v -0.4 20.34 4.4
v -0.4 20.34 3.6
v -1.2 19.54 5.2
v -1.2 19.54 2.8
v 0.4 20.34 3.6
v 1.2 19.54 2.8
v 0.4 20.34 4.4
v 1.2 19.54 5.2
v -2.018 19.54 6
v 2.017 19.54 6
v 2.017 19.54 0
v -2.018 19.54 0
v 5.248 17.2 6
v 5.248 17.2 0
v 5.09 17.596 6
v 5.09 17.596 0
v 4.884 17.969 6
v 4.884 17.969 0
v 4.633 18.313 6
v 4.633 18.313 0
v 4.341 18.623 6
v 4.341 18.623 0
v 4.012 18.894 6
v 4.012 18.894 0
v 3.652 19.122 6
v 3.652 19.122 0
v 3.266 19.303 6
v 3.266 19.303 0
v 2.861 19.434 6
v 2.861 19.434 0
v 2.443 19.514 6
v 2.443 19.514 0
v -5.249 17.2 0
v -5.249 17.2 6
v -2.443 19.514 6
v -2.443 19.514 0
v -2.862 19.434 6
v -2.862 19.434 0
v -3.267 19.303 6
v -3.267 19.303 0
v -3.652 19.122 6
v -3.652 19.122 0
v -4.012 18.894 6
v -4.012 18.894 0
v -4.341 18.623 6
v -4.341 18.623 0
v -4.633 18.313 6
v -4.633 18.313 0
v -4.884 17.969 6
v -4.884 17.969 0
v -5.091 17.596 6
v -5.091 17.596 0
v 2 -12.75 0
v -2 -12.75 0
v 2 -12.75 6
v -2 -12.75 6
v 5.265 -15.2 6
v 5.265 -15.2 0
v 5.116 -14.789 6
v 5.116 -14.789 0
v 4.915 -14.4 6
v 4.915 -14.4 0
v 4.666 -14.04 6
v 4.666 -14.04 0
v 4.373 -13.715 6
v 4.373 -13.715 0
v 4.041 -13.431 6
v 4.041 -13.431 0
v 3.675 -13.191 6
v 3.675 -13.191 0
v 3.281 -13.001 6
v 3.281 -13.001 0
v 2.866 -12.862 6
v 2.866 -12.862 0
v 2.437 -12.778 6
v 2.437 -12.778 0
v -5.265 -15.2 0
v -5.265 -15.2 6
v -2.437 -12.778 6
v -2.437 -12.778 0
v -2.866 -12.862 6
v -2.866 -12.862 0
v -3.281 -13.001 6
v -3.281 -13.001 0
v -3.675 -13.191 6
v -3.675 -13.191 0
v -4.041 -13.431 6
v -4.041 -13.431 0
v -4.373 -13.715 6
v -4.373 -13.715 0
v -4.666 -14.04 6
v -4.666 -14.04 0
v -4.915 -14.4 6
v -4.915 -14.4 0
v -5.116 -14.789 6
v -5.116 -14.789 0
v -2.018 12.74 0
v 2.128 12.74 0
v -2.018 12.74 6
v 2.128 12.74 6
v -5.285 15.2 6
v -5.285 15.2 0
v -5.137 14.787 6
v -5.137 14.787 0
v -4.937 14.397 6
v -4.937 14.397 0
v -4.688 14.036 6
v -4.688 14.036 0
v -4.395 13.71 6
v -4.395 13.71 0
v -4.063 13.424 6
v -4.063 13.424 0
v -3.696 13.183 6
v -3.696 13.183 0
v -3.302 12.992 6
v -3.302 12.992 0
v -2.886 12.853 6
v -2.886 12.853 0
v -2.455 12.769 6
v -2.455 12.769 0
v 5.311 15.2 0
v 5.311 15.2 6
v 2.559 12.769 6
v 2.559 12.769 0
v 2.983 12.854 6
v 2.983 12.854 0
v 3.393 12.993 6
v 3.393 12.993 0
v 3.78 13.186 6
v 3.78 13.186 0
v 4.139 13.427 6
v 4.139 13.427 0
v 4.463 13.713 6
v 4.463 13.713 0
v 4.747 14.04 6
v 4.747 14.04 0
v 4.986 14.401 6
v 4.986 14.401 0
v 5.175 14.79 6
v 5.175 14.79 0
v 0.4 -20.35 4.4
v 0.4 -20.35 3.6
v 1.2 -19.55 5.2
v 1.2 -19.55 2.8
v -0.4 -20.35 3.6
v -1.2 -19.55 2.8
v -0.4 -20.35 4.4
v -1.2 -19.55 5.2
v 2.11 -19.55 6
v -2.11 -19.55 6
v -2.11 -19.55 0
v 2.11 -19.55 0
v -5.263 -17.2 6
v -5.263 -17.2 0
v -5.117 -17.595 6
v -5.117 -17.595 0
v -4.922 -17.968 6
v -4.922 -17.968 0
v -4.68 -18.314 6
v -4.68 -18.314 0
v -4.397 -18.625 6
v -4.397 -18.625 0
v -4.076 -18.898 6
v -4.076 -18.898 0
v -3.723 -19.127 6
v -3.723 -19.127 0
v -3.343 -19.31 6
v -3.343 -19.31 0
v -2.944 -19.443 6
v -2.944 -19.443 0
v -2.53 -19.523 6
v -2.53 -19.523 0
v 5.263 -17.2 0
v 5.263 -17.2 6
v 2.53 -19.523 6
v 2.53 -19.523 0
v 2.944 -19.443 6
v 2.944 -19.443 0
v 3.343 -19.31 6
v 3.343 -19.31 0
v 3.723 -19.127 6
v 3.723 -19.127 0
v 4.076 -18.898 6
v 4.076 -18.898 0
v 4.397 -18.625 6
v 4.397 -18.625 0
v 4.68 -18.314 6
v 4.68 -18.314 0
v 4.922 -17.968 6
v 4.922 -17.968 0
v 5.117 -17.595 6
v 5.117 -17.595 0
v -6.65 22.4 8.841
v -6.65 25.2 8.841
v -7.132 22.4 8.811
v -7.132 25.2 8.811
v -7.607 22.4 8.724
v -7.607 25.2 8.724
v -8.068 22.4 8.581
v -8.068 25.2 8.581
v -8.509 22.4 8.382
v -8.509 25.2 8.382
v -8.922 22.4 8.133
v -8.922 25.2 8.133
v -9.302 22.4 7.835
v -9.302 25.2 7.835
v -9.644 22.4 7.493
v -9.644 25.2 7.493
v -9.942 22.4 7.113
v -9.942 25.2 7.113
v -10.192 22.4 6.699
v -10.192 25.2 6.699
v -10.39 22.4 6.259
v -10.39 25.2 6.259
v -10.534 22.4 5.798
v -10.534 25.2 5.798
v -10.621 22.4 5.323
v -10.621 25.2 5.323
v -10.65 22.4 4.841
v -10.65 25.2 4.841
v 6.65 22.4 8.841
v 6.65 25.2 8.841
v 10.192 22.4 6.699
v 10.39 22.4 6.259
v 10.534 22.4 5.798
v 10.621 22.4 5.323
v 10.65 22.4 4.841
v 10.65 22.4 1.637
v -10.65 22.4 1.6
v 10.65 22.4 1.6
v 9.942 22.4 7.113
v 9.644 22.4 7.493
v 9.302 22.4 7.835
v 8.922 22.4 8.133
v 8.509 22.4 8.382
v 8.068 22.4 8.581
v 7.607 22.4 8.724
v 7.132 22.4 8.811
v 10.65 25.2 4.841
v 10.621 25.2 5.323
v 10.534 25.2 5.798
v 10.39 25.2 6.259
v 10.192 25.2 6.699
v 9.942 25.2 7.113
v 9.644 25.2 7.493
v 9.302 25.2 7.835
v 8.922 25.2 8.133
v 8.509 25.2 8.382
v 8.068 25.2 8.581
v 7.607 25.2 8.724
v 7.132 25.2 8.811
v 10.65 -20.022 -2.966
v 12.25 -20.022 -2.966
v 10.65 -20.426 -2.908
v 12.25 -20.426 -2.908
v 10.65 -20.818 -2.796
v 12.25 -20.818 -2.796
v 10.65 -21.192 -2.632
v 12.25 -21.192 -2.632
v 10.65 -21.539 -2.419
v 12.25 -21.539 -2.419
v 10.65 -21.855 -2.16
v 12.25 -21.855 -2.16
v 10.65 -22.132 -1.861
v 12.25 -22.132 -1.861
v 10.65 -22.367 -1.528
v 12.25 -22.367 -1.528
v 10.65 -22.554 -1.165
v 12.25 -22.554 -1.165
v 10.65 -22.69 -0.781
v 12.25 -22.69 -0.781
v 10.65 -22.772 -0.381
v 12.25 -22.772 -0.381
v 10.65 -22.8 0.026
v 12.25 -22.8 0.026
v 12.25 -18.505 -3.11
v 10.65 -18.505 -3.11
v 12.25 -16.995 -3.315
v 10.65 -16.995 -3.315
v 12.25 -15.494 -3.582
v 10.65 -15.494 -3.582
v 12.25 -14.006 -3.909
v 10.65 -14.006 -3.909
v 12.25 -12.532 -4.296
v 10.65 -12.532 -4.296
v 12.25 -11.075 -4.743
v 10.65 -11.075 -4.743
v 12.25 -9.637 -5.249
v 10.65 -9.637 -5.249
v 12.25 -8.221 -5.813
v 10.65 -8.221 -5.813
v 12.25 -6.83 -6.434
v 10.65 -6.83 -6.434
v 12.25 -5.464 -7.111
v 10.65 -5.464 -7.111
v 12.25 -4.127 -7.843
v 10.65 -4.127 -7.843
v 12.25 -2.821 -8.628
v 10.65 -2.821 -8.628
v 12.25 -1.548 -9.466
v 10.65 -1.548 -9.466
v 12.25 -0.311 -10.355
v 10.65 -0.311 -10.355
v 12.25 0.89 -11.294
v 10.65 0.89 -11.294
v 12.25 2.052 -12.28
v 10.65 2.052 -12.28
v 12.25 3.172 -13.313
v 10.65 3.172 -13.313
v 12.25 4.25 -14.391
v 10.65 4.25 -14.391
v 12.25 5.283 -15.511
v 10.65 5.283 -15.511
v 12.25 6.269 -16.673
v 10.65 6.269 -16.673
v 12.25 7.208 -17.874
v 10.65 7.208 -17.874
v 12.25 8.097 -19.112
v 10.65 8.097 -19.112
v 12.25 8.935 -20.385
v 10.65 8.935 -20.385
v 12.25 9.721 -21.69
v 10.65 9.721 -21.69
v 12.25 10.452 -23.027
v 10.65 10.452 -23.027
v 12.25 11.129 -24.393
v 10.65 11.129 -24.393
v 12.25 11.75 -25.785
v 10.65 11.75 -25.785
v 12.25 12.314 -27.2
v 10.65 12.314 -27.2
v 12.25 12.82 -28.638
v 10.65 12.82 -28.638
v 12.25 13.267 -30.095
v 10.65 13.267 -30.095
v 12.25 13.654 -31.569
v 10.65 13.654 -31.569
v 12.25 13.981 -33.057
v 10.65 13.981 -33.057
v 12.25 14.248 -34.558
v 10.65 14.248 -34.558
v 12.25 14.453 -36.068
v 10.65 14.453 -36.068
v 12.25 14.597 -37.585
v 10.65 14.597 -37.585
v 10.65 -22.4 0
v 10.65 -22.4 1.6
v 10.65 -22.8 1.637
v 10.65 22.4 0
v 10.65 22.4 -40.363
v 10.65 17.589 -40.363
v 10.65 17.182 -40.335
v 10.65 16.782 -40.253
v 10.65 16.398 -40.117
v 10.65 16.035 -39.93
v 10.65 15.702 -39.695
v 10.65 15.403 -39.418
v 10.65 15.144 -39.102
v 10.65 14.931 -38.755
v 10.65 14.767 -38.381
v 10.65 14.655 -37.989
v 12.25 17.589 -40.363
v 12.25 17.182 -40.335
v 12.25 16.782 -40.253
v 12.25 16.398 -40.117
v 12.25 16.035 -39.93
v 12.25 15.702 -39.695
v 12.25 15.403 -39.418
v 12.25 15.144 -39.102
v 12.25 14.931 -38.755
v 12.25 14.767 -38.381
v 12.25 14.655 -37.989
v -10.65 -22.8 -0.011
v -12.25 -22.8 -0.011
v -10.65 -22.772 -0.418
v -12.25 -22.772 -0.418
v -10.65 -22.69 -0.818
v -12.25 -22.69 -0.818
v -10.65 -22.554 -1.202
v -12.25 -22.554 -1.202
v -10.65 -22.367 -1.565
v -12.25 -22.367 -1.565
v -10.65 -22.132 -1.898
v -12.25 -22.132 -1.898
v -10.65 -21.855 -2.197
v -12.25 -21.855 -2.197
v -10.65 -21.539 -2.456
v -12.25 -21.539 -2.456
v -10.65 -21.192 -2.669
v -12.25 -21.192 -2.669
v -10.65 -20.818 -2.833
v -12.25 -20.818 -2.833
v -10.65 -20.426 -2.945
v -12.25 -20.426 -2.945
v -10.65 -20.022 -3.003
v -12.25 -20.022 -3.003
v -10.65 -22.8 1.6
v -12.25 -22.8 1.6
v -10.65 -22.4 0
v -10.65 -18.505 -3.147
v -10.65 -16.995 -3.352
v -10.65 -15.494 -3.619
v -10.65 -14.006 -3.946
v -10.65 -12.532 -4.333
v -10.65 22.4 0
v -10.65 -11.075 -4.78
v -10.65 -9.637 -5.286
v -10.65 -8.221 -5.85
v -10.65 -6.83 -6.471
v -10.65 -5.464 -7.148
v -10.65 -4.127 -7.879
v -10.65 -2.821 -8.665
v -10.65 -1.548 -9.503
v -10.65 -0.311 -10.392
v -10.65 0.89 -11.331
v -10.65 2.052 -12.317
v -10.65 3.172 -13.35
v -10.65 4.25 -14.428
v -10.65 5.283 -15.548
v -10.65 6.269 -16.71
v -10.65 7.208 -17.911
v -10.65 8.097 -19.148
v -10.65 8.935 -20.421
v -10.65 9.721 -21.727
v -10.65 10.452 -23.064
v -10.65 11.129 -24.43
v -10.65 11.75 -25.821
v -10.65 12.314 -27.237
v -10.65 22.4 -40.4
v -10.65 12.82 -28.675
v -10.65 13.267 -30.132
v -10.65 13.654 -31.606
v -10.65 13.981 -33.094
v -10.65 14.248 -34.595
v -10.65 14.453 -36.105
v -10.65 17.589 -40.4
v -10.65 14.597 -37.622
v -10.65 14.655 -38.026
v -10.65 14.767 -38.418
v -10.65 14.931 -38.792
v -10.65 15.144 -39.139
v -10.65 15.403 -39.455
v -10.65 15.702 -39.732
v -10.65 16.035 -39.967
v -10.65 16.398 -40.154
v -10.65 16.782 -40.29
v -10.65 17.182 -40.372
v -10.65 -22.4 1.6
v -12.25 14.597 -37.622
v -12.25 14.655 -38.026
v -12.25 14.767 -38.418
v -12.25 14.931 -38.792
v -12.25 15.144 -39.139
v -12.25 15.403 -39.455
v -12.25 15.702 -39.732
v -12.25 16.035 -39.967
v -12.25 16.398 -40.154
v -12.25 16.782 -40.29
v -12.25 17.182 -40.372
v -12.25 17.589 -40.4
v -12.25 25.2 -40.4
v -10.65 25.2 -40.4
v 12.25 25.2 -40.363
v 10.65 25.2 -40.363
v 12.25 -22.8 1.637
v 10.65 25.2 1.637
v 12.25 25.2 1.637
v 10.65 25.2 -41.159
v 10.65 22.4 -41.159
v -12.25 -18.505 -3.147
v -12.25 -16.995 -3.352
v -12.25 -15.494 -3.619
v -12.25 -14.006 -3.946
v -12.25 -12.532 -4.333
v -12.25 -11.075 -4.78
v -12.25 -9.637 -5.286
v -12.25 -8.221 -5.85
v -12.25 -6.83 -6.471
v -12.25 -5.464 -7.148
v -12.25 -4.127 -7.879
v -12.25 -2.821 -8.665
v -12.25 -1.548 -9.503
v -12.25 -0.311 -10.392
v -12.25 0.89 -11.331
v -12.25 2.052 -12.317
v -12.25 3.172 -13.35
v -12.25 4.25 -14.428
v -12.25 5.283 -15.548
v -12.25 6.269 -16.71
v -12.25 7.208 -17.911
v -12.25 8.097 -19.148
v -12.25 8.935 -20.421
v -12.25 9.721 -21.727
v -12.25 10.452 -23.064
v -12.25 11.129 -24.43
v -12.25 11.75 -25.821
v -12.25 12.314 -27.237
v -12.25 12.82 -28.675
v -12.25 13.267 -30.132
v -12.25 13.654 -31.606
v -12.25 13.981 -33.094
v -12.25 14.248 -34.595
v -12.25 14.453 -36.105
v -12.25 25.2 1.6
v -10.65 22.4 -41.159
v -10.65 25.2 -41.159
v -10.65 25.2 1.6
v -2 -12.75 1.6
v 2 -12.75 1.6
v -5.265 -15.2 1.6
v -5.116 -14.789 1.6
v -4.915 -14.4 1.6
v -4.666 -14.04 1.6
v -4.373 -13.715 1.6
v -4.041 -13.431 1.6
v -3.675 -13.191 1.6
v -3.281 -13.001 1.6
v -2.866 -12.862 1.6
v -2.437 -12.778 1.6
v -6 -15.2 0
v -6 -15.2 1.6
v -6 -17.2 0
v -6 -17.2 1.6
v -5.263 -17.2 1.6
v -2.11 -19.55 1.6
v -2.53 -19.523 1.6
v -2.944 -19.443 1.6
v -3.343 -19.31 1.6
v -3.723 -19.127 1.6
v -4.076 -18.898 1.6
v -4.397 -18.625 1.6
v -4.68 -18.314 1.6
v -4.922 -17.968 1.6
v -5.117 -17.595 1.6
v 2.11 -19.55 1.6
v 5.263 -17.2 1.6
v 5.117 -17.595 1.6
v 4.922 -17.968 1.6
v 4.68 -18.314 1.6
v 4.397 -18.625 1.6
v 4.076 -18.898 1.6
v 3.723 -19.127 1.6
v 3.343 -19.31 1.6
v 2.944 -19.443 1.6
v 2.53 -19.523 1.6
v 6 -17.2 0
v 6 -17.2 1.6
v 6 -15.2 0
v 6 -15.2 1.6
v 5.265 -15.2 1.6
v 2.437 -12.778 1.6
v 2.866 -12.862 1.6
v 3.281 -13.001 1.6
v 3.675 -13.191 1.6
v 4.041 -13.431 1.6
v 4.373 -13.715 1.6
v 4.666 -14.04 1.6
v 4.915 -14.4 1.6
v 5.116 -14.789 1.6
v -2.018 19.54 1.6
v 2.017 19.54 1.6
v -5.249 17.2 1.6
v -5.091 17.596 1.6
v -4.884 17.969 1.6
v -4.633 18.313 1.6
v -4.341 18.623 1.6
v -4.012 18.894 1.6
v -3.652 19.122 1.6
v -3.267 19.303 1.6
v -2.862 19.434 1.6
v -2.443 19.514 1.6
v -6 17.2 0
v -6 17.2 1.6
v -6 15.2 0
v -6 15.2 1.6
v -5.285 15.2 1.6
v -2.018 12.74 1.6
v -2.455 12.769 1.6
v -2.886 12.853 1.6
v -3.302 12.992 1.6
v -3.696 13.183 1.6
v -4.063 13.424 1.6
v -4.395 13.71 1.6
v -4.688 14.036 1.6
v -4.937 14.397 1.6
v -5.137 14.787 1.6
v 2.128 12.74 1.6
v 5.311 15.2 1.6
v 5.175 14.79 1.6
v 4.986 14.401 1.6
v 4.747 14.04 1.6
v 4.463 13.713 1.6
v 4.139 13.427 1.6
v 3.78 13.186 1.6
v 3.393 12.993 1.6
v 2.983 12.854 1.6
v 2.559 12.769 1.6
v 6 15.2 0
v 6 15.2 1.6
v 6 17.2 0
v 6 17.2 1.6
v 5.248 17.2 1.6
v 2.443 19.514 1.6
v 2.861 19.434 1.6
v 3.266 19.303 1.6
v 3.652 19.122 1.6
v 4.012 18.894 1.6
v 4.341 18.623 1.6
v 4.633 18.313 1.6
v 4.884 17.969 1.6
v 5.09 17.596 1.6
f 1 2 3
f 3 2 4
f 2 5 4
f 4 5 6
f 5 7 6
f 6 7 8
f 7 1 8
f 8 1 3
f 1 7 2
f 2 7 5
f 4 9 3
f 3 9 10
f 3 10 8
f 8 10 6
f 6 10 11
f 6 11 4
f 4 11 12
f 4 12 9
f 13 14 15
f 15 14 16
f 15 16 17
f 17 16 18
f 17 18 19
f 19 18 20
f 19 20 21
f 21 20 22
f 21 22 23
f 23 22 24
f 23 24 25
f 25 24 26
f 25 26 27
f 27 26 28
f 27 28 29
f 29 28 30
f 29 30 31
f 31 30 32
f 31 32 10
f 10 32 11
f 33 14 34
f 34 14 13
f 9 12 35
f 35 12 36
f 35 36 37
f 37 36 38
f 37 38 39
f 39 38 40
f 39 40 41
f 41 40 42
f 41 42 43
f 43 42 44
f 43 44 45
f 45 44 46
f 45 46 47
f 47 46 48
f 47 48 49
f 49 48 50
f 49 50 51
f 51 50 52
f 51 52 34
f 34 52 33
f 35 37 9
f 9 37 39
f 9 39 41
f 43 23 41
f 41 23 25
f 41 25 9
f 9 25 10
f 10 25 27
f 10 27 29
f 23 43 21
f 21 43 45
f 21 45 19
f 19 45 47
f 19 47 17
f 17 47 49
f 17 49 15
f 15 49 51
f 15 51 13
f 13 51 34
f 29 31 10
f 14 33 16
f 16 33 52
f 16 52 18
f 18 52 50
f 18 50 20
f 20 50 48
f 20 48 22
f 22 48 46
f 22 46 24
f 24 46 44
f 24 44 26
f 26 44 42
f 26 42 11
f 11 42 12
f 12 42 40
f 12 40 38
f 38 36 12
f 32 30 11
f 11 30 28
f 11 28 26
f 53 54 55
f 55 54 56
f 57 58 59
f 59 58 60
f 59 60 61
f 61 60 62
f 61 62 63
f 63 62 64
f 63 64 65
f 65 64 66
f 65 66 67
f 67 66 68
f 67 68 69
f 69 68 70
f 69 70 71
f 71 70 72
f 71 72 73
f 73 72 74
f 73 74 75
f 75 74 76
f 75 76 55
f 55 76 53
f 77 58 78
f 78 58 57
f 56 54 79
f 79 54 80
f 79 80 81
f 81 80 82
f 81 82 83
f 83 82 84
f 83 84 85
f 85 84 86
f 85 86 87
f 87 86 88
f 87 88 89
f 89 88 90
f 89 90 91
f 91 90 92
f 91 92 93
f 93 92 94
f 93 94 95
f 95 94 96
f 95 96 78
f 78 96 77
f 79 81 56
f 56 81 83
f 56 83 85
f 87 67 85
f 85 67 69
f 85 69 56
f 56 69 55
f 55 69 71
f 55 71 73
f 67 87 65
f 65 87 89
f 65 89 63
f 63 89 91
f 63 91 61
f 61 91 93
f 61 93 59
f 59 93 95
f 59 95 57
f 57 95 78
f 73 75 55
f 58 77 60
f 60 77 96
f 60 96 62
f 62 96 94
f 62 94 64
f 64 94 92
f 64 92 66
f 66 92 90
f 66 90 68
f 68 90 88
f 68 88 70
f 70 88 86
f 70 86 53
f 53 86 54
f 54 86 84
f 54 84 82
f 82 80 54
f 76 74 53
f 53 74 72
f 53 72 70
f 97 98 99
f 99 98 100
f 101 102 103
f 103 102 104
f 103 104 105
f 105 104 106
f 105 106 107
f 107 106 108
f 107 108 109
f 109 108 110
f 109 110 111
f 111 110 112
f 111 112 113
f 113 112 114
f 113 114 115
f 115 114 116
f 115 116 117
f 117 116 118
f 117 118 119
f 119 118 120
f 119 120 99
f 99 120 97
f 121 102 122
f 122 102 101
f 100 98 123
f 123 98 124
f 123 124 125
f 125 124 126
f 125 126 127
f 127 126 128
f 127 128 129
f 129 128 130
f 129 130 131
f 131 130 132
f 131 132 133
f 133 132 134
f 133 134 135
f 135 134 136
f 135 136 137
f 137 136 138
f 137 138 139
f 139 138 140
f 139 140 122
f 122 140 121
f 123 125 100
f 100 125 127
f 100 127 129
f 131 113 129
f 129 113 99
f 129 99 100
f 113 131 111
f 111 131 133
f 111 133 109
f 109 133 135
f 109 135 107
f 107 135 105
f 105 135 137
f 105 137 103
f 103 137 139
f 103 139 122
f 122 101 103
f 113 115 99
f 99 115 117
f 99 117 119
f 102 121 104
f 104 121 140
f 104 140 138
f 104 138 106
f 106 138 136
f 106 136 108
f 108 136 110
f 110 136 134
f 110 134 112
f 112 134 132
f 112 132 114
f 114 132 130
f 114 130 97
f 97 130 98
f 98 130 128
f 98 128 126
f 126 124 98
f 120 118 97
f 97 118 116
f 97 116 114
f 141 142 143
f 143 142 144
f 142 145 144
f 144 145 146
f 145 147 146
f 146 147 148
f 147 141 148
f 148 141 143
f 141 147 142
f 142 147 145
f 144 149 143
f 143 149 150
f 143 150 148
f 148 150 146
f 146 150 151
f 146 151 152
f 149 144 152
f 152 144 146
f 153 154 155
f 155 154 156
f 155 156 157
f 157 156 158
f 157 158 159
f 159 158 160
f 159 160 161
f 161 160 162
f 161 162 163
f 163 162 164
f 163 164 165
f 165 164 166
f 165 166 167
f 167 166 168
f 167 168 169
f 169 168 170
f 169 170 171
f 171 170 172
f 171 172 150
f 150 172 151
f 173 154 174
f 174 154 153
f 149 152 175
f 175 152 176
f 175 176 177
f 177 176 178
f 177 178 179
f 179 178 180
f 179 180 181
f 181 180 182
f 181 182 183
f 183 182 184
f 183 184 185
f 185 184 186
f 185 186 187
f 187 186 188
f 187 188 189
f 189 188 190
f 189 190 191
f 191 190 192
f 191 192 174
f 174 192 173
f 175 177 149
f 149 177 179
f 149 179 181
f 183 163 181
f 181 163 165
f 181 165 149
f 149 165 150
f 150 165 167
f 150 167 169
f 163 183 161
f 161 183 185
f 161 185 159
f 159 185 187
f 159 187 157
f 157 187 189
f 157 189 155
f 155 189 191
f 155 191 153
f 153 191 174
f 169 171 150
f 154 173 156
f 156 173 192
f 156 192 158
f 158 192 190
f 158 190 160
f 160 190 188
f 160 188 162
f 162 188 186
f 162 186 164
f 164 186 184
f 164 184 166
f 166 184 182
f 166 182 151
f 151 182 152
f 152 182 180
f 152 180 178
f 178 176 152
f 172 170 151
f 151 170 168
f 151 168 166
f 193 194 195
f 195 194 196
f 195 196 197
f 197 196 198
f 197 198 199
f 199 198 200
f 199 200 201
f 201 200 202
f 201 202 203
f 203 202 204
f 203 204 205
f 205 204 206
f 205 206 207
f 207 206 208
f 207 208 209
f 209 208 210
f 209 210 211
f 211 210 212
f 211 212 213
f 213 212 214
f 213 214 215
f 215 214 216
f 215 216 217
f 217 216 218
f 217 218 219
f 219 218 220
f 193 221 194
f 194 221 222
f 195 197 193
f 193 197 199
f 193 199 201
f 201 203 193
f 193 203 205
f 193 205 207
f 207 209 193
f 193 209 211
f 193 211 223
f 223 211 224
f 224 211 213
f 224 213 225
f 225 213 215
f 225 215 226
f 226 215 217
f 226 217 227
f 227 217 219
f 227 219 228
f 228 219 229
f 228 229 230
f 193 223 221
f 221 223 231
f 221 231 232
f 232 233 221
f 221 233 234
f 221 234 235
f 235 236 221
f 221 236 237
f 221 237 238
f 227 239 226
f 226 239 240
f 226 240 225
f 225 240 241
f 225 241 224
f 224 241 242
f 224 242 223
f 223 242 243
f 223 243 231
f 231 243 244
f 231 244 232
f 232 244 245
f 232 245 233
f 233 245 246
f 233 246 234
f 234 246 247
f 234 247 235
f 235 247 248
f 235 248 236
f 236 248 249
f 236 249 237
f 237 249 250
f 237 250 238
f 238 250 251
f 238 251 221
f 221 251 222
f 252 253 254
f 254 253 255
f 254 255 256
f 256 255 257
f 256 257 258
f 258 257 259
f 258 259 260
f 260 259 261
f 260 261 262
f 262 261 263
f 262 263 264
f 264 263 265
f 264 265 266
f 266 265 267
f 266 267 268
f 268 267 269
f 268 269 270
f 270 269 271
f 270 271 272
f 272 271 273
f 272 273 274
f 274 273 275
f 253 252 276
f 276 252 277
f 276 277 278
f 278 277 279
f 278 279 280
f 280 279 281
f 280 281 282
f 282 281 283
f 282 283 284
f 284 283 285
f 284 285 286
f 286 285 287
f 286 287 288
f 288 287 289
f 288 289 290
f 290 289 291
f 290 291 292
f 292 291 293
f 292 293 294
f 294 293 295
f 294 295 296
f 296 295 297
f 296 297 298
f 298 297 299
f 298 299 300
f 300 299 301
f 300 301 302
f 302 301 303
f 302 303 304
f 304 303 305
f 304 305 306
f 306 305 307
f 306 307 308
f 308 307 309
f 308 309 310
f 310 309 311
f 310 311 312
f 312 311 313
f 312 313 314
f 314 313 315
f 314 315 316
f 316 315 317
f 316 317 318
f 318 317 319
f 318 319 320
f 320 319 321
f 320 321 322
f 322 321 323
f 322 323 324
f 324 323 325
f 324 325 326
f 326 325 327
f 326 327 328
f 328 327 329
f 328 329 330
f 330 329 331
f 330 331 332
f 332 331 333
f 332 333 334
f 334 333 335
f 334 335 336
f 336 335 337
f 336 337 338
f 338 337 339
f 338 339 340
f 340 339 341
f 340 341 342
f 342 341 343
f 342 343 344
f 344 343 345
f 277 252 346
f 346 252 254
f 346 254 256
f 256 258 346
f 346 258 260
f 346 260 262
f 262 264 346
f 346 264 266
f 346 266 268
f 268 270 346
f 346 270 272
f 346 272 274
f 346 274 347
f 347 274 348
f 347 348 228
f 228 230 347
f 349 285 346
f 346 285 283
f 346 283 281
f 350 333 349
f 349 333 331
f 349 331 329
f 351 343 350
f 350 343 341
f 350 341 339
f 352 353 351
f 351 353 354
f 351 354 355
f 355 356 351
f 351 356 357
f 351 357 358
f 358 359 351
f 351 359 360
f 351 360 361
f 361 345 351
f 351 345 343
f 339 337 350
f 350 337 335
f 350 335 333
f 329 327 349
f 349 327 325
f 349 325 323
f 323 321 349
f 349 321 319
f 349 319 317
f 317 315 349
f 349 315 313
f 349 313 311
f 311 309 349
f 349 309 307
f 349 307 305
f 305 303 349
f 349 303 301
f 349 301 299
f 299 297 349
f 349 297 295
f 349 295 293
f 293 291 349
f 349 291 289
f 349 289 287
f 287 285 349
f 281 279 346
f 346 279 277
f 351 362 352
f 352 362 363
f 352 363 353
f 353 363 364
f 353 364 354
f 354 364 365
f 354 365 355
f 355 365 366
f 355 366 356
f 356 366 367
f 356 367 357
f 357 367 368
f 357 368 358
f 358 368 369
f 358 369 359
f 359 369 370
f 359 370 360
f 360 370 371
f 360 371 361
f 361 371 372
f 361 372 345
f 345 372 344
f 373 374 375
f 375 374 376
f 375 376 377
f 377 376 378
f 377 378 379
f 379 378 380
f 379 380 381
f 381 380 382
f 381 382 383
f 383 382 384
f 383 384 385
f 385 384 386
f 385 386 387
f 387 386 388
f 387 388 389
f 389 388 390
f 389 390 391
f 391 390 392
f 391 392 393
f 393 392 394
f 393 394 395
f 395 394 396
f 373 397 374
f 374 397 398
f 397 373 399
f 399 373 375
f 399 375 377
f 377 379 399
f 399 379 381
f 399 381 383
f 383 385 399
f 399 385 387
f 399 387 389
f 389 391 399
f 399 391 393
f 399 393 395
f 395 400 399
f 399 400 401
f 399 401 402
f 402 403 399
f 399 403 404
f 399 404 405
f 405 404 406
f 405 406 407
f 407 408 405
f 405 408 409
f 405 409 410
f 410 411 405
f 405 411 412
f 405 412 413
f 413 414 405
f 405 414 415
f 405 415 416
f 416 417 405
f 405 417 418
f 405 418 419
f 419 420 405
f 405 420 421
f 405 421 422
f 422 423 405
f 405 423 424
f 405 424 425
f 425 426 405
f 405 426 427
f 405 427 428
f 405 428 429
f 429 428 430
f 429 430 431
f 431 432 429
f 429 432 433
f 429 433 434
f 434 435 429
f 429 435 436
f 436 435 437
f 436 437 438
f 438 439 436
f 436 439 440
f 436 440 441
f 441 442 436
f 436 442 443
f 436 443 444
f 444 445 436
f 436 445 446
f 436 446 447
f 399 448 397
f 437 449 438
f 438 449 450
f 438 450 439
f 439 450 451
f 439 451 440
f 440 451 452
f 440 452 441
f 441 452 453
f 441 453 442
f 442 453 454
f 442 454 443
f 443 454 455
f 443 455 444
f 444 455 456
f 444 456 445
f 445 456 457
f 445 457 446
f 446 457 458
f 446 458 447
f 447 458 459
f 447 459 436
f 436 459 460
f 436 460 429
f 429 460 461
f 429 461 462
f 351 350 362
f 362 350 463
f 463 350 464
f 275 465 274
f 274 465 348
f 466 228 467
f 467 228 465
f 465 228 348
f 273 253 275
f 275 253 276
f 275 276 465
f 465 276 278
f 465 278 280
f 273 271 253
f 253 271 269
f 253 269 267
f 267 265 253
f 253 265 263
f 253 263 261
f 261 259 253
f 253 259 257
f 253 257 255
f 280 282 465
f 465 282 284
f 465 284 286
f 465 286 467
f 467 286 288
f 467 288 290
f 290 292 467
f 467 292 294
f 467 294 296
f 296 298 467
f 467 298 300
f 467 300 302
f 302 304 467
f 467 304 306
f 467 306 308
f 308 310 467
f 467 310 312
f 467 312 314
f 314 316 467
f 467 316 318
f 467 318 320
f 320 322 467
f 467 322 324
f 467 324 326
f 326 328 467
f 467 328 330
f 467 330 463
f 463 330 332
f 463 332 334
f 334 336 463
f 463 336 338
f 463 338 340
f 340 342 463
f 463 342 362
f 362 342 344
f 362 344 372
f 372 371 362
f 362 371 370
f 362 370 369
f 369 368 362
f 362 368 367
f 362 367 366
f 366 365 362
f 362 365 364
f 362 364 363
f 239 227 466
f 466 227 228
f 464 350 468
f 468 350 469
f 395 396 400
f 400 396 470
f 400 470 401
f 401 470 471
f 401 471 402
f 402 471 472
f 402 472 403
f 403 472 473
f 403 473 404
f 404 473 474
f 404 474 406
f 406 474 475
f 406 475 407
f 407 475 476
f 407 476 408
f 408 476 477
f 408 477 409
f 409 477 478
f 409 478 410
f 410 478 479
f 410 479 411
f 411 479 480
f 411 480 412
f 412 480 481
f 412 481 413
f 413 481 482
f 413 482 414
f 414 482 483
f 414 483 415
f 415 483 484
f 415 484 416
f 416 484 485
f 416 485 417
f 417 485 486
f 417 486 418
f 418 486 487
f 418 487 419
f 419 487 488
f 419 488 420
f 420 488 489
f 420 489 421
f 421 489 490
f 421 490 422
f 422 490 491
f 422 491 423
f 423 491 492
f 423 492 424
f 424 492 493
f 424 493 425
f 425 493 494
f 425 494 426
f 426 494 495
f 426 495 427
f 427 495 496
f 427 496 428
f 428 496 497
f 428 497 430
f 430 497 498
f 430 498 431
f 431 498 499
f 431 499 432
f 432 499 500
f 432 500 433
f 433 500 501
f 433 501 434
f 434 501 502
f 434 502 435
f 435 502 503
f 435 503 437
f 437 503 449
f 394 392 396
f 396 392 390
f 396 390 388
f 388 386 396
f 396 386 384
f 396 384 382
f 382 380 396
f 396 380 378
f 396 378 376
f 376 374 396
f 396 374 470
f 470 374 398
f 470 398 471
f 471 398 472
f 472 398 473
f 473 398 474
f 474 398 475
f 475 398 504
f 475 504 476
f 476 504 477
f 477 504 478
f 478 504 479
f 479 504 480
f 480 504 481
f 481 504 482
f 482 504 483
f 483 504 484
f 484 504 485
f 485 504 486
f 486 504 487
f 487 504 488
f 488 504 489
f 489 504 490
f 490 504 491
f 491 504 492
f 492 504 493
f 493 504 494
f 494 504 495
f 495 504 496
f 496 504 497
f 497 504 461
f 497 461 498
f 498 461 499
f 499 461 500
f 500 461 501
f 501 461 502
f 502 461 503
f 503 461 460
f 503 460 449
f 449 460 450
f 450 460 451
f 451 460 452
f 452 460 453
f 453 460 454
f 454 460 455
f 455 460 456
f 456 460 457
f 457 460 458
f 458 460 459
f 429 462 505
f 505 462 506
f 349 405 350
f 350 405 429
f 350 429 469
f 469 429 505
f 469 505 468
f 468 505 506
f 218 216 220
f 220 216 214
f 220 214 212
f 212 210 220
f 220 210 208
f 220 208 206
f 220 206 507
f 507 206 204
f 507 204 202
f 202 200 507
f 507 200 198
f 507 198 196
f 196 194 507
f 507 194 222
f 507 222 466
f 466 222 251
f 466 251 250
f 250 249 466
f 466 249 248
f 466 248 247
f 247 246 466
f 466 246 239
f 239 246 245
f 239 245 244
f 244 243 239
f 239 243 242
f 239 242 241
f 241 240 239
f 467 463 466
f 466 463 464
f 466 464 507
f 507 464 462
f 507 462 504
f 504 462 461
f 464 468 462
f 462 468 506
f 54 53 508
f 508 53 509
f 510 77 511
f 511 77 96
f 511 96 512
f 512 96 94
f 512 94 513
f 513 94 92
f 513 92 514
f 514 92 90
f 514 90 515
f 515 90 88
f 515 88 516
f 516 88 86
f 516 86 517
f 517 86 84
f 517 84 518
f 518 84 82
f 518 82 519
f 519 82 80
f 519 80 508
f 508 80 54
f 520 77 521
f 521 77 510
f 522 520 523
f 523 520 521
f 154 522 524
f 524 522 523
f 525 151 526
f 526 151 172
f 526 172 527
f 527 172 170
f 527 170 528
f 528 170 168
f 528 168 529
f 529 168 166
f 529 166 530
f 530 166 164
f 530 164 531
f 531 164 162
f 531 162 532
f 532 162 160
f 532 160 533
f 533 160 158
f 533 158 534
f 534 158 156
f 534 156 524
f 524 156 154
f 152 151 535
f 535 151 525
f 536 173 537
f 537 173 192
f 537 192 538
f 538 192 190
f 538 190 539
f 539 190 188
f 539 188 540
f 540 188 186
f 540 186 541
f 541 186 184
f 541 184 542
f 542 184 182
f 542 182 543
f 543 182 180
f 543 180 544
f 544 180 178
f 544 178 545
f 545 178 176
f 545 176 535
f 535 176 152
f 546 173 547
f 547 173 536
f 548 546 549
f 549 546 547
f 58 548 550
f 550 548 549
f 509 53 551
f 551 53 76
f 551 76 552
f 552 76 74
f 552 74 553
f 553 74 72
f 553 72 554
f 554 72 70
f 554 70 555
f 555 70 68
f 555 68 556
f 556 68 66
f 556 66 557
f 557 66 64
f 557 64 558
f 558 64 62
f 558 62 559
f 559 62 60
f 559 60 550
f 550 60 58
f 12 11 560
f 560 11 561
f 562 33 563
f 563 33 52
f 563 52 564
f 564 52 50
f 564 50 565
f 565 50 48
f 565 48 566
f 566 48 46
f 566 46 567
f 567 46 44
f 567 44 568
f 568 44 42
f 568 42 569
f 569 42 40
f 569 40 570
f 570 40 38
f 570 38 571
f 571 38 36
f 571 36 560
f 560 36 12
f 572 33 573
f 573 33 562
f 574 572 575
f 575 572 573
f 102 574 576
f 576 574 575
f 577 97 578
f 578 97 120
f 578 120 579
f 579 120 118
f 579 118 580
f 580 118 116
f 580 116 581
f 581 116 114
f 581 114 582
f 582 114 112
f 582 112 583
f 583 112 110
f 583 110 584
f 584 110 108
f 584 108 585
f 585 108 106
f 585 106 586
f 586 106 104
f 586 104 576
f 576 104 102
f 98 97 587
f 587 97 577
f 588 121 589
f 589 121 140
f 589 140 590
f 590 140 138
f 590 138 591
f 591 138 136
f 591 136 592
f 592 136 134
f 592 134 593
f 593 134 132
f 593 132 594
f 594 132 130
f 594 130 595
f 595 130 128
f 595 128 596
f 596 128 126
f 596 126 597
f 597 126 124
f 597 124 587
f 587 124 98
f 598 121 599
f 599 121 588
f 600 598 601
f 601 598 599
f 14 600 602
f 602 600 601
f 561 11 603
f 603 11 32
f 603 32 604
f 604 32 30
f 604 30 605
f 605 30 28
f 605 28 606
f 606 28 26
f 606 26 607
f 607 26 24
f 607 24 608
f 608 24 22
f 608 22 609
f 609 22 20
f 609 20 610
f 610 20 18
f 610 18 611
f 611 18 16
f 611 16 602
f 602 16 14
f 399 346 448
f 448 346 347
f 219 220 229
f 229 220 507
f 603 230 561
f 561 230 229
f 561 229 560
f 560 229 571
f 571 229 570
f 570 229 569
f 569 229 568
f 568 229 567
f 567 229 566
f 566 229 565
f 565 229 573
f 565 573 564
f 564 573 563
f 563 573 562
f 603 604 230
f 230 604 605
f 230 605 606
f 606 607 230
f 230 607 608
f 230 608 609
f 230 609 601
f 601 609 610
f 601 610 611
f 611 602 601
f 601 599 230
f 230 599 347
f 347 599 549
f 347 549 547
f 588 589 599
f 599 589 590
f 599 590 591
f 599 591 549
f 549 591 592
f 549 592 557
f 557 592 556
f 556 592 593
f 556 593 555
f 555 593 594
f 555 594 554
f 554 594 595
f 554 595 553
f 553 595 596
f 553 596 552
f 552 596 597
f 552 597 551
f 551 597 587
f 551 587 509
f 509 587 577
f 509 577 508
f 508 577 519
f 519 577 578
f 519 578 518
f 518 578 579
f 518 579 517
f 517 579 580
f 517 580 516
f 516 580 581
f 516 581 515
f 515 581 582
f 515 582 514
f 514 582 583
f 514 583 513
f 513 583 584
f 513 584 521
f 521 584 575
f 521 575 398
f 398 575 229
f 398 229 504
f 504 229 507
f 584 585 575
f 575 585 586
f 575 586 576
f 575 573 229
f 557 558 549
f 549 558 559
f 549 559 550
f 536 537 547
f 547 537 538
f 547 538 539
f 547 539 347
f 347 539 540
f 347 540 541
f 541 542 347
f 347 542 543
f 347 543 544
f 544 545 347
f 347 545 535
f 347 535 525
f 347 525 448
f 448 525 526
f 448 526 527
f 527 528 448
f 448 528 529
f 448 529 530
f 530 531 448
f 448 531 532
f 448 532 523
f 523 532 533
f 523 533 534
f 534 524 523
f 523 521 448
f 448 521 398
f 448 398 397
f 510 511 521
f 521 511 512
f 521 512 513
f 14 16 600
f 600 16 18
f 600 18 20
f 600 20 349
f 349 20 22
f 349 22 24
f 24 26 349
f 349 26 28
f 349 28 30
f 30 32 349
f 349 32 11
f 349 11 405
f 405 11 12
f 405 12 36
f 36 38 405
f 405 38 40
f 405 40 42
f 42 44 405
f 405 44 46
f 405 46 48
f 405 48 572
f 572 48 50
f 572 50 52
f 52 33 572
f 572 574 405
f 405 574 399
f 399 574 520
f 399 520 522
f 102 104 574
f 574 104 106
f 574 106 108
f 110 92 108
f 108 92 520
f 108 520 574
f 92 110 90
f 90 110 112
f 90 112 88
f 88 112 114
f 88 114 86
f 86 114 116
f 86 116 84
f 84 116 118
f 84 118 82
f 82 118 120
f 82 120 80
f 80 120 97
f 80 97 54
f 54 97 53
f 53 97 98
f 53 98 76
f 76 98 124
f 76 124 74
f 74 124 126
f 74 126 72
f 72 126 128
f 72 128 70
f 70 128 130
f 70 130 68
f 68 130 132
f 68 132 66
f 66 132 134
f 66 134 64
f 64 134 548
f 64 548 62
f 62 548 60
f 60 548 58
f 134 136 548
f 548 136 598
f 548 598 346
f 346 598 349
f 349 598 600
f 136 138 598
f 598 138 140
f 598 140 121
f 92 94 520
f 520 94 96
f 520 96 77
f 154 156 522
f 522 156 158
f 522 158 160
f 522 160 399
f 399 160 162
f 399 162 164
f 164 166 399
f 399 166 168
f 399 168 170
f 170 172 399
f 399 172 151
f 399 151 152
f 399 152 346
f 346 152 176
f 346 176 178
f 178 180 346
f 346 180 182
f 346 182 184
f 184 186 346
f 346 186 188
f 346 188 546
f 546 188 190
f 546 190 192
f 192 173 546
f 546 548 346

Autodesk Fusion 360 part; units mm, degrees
sketch "Sketch1" plane through (0, 0, 0) normal (0, 0, 1) x (1, 0, 0)
  line L0 (10.65, 22.4) -> (-10.65, 22.4)
  line L1 (-10.65, 22.4) -> (-10.65, -22.4)
  line L2 (-10.65, -22.4) -> (10.65, -22.4)
  line L3 (10.65, -22.4) -> (10.65, 22.4)
  line L4 (10.65, 22.4) -> (-10.65, -22.4) construction
  line L5 (-10.65, 22.4) -> (10.65, -22.4) construction
  line L6 (2.11, -19.55) -> (-2.11, -19.55)
  line L7 (-5.4, -16.26) -> (-5.4, -16.15)
  line L8 (-2, -12.75) -> (2, -12.75)
  line L9 (5.4, -16.15) -> (5.4, -16.26)
  line L10 (5.4, -19.55) -> (-5.4, -12.75) construction
  line L11 (-5.4, -19.55) -> (5.4, -12.75) construction
  line L12 (2.1277, 12.7404) -> (-2.0179, 12.7404)
  line L13 (-5.4179, 16.1382) -> (-5.4179, 16.138)
  line L14 (-2.0179, 19.5402) -> (2.0175, 19.5402)
  line L15 (5.4175, 16.1453) -> (5.4176, 16.0353)
  line L16 (5.4226, 12.7404) -> (-5.3876, 19.5402) construction
  line L17 (-5.439, 12.7404) -> (5.4124, 19.5402) construction
  arc A0 (-2.0179, 19.5402) -> (-5.4179, 16.138) centre (-2.0179, 16.1402) ccw
  arc A1 (-5.4179, 16.1382) -> (-2.0179, 12.7404) centre (-2.0179, 16.1404) ccw
  arc A2 (5.4175, 16.1453) -> (2.0175, 19.5402) centre (2.0175, 16.1402) ccw
  arc A3 (2.1277, 12.7404) -> (5.4176, 16.0353) centre (2.1277, 16.0304) ccw
  arc A4 (-2, -12.75) -> (-5.4, -16.15) centre (-2, -16.15) ccw
  arc A5 (5.4, -16.15) -> (2, -12.75) centre (2, -16.15) ccw
  arc A6 (-5.4, -16.26) -> (-2.11, -19.55) centre (-2.11, -16.26) ccw
  arc A7 (2.11, -19.55) -> (5.4, -16.26) centre (2.11, -16.26) ccw
  line L18 (6, 15.2) -> (-6, 15.2)
  line L19 (-6, 15.2) -> (-6, 17.2)
  line L20 (-6, 17.2) -> (6, 17.2)
  line L21 (6, 17.2) -> (6, 15.2)
  line L22 (6, 15.2) -> (-6, 17.2) construction
  line L23 (-6, 15.2) -> (6, 17.2) construction
  line L24 (6, -17.2) -> (-6, -17.2)
  line L25 (-6, -17.2) -> (-6, -15.2)
  line L26 (-6, -15.2) -> (6, -15.2)
  line L27 (6, -15.2) -> (6, -17.2)
  line L28 (6, -17.2) -> (-6, -15.2) construction
  line L29 (-6, -17.2) -> (6, -15.2) construction
  point P0 (0, -16.15)
  point P1 (0.0021, 16.15)
  point P2 (0, 16.2)
  point P3 (0, -16.2)
  dimension "d1" = 21.3
  dimension "d2" = 44.8
  dimension "d3" = 10.8
  dimension "d4" = 6.8
  dimension "d5" = 6.25
  dimension "d6" = 10.8
  dimension "d7" = 6.8
  dimension "d8" = 6.25
  dimension "d9" = 3.4
  dimension "d10" = 3.4
  dimension "d11" = 3.4
  dimension "d12" = 3.29
  dimension "d13" = 3.4
  dimension "d14" = 3.4
  dimension "d15" = 3.29
  dimension "d16" = 3.29
  dimension "d17" = 2
  dimension "d18" = 2
extrude "Extrude2" add sketch "Sketch1" along normal blind 6 contours L6 A6 A7 L24 | L8 A4 A5 L26 | L12 A1 A3 L18 | L14 A0 A2 L20 makes body 1 at (-1.7496, 17.2, 2) makes body 2 at (-1.7549, -15.2, 2) makes body 3 at (1.779, 15.2, 2) makes body 4 at (-1.7543, -17.2, 4)
extrude "Extrude1" add sketch "Sketch1" along normal blind 1.6 separate body makes body 5
sketch "Sketch2" plane through (0, -19.55, 0) normal (0, -1, 0) x (1, 0, 0)
  line L0 (-2.11, 0) -> (2.11, 0)
  line L1 (2.11, 0) -> (2.11, 6)
  line L2 (2.11, 6) -> (-2.11, 6)
  line L3 (-2.11, 6) -> (-2.11, 0)
  line L4 (1.2, 2.8) -> (-1.2, 2.8)
  line L5 (-1.2, 2.8) -> (-1.2, 5.2)
  line L6 (-1.2, 5.2) -> (1.2, 5.2)
  line L7 (1.2, 5.2) -> (1.2, 2.8)
  line L8 (1.2, 2.8) -> (-1.2, 5.2) construction
  line L9 (-1.2, 2.8) -> (1.2, 5.2) construction
  point P0 (0, 4)
  dimension "d23" = 2.4
  dimension "d24" = 2.4
extrude "Extrude3" add sketch "Sketch2" along normal blind 0.8 draft -45 contours L4 L5 L6 L7 bodies 4
sketch "Sketch3" plane through (0, 19.5402, 0) normal (0, 1, 0) x (-1, 0, 0)
  line L0 (-2.0175, 0) -> (2.0179, 0)
  line L1 (2.0179, 0) -> (2.0179, 6)
  line L2 (2.0179, 6) -> (-2.0175, 6)
  line L3 (-2.0175, 6) -> (-2.0175, 0)
  line L4 (1.2, 2.8) -> (-1.2, 2.8)
  line L5 (-1.2, 2.8) -> (-1.2, 5.2)
  line L6 (-1.2, 5.2) -> (1.2, 5.2)
  line L7 (1.2, 5.2) -> (1.2, 2.8)
  line L8 (1.2, 2.8) -> (-1.2, 5.2) construction
  line L9 (-1.2, 2.8) -> (1.2, 5.2) construction
  point P0 (0, 4)
  dimension "d27" = 2.4
  dimension "d28" = 2.4
extrude "Extrude4" add sketch "Sketch3" along normal blind 0.8 draft -45 contours L4 L5 L6 L7 bodies 1
sketch "Sketch4" plane through (0, 22.4, 0) normal (0, 1, 0) x (-1, 0, 0)
  line L0 (-10.65, 0) -> (10.65, 0)
  line L1 (10.65, 0) -> (10.65, 1.6)
  line L2 (10.65, 1.6) -> (-10.65, 1.6)
  line L3 (-10.65, 1.6) -> (-10.65, 0)
  line L4 (-10.65, 8.8406) -> (10.65, 8.8406)
  line L5 (10.65, 8.8406) -> (10.65, -41.1594)
  line L6 (10.65, -41.1594) -> (-10.65, -41.1594)
  line L7 (-10.65, -41.1594) -> (-10.65, 8.8406)
  dimension "d31" = 21.3
  dimension "d32" = 50
extrude "Extrude5" add sketch "Sketch4" along normal blind 2.8 bodies 5
sketch "Sketch5" plane through (-10.65, 0, 0) normal (-1, 0, 0) x (0, -1, 0)
  line L0 (-22.4, 0) -> (22.4, 0)
  line L1 (22.4, 0) -> (22.4, 1.6)
  line L2 (22.4, 1.6) -> (-22.4, 1.6)
  line L3 (-22.4, 1.6) -> (-22.4, 8.8406)
  line L4 (-22.4, 8.8406) -> (-25.2, 8.8406)
  line L5 (-25.2, 8.8406) -> (-25.2, -41.1594)
  line L6 (-25.2, -41.1594) -> (-22.4, -41.1594)
  line L7 (-22.4, -41.1594) -> (-22.4, 0)
  line L8 (-25.2, 1.6) -> (22.8, 1.6)
  line L9 (22.8, 1.6) -> (22.8, -40.4)
  line L10 (22.8, -40.4) -> (-25.2, -40.4)
  line L11 (-25.2, -40.4) -> (-25.2, 1.6)
  circle A0 centre (22.8, -40.4) radius 37.5
  dimension "d35" = 48
  dimension "d36" = 42
  dimension "d37" = 75
extrude "Extrude6" add sketch "Sketch5" along normal blind 1.6 contours L0 L1 L2 L5 L7 L8 L10 L11 | L0 L1 L7 L8 L9 L10 A0 bodies 5
sketch "Sketch6" plane through (10.65, 0, 0) normal (1, 0, 0) x (0, 1, 0)
  line L0 (-22.4, 0) -> (22.4, 0)
  line L1 (22.4, 0) -> (22.4, -41.1594)
  line L2 (22.4, -41.1594) -> (25.2, -41.1594)
  line L3 (25.2, -41.1594) -> (25.2, 8.8406)
  line L4 (25.2, 8.8406) -> (22.4, 8.8406)
  line L5 (22.4, 8.8406) -> (22.4, 1.6)
  line L6 (22.4, 1.6) -> (-22.4, 1.6)
  line L7 (-22.4, 1.6) -> (-22.4, 0)
  line L8 (25.2, 1.6369) -> (-22.8, 1.6369)
  line L9 (-22.8, 1.6369) -> (-22.8, -40.3631)
  line L10 (-22.8, -40.3631) -> (25.2, -40.3631)
  line L11 (25.2, -40.3631) -> (25.2, 1.6369)
  circle A0 centre (-22.8, -40.3631) radius 37.5
  dimension "d40" = 48
  dimension "d41" = 42
  dimension "d42" = 75
extrude "Extrude7" add sketch "Sketch6" along normal blind 1.6 contours L0 L1 L3 L5 L6 L7 L8 L10 L11 | L0 L1 L5 L6 L7 L8 L9 L10 A0 bodies 5
fillet "Fillet1" radius 3 2 edges at (-11.45, 14.7, -40.4) (-11.45, -22.8, -2.9) on bodies 5
fillet "Fillet2" radius 3 2 edges at (11.45, 14.7, -40.3631) (11.45, -22.8, -2.8631) on bodies 5
fillet "Fillet3" radius 4 2 edges at (10.65, 23.8, 8.8406) (-10.65, 23.8, 8.8406) on bodies 5
